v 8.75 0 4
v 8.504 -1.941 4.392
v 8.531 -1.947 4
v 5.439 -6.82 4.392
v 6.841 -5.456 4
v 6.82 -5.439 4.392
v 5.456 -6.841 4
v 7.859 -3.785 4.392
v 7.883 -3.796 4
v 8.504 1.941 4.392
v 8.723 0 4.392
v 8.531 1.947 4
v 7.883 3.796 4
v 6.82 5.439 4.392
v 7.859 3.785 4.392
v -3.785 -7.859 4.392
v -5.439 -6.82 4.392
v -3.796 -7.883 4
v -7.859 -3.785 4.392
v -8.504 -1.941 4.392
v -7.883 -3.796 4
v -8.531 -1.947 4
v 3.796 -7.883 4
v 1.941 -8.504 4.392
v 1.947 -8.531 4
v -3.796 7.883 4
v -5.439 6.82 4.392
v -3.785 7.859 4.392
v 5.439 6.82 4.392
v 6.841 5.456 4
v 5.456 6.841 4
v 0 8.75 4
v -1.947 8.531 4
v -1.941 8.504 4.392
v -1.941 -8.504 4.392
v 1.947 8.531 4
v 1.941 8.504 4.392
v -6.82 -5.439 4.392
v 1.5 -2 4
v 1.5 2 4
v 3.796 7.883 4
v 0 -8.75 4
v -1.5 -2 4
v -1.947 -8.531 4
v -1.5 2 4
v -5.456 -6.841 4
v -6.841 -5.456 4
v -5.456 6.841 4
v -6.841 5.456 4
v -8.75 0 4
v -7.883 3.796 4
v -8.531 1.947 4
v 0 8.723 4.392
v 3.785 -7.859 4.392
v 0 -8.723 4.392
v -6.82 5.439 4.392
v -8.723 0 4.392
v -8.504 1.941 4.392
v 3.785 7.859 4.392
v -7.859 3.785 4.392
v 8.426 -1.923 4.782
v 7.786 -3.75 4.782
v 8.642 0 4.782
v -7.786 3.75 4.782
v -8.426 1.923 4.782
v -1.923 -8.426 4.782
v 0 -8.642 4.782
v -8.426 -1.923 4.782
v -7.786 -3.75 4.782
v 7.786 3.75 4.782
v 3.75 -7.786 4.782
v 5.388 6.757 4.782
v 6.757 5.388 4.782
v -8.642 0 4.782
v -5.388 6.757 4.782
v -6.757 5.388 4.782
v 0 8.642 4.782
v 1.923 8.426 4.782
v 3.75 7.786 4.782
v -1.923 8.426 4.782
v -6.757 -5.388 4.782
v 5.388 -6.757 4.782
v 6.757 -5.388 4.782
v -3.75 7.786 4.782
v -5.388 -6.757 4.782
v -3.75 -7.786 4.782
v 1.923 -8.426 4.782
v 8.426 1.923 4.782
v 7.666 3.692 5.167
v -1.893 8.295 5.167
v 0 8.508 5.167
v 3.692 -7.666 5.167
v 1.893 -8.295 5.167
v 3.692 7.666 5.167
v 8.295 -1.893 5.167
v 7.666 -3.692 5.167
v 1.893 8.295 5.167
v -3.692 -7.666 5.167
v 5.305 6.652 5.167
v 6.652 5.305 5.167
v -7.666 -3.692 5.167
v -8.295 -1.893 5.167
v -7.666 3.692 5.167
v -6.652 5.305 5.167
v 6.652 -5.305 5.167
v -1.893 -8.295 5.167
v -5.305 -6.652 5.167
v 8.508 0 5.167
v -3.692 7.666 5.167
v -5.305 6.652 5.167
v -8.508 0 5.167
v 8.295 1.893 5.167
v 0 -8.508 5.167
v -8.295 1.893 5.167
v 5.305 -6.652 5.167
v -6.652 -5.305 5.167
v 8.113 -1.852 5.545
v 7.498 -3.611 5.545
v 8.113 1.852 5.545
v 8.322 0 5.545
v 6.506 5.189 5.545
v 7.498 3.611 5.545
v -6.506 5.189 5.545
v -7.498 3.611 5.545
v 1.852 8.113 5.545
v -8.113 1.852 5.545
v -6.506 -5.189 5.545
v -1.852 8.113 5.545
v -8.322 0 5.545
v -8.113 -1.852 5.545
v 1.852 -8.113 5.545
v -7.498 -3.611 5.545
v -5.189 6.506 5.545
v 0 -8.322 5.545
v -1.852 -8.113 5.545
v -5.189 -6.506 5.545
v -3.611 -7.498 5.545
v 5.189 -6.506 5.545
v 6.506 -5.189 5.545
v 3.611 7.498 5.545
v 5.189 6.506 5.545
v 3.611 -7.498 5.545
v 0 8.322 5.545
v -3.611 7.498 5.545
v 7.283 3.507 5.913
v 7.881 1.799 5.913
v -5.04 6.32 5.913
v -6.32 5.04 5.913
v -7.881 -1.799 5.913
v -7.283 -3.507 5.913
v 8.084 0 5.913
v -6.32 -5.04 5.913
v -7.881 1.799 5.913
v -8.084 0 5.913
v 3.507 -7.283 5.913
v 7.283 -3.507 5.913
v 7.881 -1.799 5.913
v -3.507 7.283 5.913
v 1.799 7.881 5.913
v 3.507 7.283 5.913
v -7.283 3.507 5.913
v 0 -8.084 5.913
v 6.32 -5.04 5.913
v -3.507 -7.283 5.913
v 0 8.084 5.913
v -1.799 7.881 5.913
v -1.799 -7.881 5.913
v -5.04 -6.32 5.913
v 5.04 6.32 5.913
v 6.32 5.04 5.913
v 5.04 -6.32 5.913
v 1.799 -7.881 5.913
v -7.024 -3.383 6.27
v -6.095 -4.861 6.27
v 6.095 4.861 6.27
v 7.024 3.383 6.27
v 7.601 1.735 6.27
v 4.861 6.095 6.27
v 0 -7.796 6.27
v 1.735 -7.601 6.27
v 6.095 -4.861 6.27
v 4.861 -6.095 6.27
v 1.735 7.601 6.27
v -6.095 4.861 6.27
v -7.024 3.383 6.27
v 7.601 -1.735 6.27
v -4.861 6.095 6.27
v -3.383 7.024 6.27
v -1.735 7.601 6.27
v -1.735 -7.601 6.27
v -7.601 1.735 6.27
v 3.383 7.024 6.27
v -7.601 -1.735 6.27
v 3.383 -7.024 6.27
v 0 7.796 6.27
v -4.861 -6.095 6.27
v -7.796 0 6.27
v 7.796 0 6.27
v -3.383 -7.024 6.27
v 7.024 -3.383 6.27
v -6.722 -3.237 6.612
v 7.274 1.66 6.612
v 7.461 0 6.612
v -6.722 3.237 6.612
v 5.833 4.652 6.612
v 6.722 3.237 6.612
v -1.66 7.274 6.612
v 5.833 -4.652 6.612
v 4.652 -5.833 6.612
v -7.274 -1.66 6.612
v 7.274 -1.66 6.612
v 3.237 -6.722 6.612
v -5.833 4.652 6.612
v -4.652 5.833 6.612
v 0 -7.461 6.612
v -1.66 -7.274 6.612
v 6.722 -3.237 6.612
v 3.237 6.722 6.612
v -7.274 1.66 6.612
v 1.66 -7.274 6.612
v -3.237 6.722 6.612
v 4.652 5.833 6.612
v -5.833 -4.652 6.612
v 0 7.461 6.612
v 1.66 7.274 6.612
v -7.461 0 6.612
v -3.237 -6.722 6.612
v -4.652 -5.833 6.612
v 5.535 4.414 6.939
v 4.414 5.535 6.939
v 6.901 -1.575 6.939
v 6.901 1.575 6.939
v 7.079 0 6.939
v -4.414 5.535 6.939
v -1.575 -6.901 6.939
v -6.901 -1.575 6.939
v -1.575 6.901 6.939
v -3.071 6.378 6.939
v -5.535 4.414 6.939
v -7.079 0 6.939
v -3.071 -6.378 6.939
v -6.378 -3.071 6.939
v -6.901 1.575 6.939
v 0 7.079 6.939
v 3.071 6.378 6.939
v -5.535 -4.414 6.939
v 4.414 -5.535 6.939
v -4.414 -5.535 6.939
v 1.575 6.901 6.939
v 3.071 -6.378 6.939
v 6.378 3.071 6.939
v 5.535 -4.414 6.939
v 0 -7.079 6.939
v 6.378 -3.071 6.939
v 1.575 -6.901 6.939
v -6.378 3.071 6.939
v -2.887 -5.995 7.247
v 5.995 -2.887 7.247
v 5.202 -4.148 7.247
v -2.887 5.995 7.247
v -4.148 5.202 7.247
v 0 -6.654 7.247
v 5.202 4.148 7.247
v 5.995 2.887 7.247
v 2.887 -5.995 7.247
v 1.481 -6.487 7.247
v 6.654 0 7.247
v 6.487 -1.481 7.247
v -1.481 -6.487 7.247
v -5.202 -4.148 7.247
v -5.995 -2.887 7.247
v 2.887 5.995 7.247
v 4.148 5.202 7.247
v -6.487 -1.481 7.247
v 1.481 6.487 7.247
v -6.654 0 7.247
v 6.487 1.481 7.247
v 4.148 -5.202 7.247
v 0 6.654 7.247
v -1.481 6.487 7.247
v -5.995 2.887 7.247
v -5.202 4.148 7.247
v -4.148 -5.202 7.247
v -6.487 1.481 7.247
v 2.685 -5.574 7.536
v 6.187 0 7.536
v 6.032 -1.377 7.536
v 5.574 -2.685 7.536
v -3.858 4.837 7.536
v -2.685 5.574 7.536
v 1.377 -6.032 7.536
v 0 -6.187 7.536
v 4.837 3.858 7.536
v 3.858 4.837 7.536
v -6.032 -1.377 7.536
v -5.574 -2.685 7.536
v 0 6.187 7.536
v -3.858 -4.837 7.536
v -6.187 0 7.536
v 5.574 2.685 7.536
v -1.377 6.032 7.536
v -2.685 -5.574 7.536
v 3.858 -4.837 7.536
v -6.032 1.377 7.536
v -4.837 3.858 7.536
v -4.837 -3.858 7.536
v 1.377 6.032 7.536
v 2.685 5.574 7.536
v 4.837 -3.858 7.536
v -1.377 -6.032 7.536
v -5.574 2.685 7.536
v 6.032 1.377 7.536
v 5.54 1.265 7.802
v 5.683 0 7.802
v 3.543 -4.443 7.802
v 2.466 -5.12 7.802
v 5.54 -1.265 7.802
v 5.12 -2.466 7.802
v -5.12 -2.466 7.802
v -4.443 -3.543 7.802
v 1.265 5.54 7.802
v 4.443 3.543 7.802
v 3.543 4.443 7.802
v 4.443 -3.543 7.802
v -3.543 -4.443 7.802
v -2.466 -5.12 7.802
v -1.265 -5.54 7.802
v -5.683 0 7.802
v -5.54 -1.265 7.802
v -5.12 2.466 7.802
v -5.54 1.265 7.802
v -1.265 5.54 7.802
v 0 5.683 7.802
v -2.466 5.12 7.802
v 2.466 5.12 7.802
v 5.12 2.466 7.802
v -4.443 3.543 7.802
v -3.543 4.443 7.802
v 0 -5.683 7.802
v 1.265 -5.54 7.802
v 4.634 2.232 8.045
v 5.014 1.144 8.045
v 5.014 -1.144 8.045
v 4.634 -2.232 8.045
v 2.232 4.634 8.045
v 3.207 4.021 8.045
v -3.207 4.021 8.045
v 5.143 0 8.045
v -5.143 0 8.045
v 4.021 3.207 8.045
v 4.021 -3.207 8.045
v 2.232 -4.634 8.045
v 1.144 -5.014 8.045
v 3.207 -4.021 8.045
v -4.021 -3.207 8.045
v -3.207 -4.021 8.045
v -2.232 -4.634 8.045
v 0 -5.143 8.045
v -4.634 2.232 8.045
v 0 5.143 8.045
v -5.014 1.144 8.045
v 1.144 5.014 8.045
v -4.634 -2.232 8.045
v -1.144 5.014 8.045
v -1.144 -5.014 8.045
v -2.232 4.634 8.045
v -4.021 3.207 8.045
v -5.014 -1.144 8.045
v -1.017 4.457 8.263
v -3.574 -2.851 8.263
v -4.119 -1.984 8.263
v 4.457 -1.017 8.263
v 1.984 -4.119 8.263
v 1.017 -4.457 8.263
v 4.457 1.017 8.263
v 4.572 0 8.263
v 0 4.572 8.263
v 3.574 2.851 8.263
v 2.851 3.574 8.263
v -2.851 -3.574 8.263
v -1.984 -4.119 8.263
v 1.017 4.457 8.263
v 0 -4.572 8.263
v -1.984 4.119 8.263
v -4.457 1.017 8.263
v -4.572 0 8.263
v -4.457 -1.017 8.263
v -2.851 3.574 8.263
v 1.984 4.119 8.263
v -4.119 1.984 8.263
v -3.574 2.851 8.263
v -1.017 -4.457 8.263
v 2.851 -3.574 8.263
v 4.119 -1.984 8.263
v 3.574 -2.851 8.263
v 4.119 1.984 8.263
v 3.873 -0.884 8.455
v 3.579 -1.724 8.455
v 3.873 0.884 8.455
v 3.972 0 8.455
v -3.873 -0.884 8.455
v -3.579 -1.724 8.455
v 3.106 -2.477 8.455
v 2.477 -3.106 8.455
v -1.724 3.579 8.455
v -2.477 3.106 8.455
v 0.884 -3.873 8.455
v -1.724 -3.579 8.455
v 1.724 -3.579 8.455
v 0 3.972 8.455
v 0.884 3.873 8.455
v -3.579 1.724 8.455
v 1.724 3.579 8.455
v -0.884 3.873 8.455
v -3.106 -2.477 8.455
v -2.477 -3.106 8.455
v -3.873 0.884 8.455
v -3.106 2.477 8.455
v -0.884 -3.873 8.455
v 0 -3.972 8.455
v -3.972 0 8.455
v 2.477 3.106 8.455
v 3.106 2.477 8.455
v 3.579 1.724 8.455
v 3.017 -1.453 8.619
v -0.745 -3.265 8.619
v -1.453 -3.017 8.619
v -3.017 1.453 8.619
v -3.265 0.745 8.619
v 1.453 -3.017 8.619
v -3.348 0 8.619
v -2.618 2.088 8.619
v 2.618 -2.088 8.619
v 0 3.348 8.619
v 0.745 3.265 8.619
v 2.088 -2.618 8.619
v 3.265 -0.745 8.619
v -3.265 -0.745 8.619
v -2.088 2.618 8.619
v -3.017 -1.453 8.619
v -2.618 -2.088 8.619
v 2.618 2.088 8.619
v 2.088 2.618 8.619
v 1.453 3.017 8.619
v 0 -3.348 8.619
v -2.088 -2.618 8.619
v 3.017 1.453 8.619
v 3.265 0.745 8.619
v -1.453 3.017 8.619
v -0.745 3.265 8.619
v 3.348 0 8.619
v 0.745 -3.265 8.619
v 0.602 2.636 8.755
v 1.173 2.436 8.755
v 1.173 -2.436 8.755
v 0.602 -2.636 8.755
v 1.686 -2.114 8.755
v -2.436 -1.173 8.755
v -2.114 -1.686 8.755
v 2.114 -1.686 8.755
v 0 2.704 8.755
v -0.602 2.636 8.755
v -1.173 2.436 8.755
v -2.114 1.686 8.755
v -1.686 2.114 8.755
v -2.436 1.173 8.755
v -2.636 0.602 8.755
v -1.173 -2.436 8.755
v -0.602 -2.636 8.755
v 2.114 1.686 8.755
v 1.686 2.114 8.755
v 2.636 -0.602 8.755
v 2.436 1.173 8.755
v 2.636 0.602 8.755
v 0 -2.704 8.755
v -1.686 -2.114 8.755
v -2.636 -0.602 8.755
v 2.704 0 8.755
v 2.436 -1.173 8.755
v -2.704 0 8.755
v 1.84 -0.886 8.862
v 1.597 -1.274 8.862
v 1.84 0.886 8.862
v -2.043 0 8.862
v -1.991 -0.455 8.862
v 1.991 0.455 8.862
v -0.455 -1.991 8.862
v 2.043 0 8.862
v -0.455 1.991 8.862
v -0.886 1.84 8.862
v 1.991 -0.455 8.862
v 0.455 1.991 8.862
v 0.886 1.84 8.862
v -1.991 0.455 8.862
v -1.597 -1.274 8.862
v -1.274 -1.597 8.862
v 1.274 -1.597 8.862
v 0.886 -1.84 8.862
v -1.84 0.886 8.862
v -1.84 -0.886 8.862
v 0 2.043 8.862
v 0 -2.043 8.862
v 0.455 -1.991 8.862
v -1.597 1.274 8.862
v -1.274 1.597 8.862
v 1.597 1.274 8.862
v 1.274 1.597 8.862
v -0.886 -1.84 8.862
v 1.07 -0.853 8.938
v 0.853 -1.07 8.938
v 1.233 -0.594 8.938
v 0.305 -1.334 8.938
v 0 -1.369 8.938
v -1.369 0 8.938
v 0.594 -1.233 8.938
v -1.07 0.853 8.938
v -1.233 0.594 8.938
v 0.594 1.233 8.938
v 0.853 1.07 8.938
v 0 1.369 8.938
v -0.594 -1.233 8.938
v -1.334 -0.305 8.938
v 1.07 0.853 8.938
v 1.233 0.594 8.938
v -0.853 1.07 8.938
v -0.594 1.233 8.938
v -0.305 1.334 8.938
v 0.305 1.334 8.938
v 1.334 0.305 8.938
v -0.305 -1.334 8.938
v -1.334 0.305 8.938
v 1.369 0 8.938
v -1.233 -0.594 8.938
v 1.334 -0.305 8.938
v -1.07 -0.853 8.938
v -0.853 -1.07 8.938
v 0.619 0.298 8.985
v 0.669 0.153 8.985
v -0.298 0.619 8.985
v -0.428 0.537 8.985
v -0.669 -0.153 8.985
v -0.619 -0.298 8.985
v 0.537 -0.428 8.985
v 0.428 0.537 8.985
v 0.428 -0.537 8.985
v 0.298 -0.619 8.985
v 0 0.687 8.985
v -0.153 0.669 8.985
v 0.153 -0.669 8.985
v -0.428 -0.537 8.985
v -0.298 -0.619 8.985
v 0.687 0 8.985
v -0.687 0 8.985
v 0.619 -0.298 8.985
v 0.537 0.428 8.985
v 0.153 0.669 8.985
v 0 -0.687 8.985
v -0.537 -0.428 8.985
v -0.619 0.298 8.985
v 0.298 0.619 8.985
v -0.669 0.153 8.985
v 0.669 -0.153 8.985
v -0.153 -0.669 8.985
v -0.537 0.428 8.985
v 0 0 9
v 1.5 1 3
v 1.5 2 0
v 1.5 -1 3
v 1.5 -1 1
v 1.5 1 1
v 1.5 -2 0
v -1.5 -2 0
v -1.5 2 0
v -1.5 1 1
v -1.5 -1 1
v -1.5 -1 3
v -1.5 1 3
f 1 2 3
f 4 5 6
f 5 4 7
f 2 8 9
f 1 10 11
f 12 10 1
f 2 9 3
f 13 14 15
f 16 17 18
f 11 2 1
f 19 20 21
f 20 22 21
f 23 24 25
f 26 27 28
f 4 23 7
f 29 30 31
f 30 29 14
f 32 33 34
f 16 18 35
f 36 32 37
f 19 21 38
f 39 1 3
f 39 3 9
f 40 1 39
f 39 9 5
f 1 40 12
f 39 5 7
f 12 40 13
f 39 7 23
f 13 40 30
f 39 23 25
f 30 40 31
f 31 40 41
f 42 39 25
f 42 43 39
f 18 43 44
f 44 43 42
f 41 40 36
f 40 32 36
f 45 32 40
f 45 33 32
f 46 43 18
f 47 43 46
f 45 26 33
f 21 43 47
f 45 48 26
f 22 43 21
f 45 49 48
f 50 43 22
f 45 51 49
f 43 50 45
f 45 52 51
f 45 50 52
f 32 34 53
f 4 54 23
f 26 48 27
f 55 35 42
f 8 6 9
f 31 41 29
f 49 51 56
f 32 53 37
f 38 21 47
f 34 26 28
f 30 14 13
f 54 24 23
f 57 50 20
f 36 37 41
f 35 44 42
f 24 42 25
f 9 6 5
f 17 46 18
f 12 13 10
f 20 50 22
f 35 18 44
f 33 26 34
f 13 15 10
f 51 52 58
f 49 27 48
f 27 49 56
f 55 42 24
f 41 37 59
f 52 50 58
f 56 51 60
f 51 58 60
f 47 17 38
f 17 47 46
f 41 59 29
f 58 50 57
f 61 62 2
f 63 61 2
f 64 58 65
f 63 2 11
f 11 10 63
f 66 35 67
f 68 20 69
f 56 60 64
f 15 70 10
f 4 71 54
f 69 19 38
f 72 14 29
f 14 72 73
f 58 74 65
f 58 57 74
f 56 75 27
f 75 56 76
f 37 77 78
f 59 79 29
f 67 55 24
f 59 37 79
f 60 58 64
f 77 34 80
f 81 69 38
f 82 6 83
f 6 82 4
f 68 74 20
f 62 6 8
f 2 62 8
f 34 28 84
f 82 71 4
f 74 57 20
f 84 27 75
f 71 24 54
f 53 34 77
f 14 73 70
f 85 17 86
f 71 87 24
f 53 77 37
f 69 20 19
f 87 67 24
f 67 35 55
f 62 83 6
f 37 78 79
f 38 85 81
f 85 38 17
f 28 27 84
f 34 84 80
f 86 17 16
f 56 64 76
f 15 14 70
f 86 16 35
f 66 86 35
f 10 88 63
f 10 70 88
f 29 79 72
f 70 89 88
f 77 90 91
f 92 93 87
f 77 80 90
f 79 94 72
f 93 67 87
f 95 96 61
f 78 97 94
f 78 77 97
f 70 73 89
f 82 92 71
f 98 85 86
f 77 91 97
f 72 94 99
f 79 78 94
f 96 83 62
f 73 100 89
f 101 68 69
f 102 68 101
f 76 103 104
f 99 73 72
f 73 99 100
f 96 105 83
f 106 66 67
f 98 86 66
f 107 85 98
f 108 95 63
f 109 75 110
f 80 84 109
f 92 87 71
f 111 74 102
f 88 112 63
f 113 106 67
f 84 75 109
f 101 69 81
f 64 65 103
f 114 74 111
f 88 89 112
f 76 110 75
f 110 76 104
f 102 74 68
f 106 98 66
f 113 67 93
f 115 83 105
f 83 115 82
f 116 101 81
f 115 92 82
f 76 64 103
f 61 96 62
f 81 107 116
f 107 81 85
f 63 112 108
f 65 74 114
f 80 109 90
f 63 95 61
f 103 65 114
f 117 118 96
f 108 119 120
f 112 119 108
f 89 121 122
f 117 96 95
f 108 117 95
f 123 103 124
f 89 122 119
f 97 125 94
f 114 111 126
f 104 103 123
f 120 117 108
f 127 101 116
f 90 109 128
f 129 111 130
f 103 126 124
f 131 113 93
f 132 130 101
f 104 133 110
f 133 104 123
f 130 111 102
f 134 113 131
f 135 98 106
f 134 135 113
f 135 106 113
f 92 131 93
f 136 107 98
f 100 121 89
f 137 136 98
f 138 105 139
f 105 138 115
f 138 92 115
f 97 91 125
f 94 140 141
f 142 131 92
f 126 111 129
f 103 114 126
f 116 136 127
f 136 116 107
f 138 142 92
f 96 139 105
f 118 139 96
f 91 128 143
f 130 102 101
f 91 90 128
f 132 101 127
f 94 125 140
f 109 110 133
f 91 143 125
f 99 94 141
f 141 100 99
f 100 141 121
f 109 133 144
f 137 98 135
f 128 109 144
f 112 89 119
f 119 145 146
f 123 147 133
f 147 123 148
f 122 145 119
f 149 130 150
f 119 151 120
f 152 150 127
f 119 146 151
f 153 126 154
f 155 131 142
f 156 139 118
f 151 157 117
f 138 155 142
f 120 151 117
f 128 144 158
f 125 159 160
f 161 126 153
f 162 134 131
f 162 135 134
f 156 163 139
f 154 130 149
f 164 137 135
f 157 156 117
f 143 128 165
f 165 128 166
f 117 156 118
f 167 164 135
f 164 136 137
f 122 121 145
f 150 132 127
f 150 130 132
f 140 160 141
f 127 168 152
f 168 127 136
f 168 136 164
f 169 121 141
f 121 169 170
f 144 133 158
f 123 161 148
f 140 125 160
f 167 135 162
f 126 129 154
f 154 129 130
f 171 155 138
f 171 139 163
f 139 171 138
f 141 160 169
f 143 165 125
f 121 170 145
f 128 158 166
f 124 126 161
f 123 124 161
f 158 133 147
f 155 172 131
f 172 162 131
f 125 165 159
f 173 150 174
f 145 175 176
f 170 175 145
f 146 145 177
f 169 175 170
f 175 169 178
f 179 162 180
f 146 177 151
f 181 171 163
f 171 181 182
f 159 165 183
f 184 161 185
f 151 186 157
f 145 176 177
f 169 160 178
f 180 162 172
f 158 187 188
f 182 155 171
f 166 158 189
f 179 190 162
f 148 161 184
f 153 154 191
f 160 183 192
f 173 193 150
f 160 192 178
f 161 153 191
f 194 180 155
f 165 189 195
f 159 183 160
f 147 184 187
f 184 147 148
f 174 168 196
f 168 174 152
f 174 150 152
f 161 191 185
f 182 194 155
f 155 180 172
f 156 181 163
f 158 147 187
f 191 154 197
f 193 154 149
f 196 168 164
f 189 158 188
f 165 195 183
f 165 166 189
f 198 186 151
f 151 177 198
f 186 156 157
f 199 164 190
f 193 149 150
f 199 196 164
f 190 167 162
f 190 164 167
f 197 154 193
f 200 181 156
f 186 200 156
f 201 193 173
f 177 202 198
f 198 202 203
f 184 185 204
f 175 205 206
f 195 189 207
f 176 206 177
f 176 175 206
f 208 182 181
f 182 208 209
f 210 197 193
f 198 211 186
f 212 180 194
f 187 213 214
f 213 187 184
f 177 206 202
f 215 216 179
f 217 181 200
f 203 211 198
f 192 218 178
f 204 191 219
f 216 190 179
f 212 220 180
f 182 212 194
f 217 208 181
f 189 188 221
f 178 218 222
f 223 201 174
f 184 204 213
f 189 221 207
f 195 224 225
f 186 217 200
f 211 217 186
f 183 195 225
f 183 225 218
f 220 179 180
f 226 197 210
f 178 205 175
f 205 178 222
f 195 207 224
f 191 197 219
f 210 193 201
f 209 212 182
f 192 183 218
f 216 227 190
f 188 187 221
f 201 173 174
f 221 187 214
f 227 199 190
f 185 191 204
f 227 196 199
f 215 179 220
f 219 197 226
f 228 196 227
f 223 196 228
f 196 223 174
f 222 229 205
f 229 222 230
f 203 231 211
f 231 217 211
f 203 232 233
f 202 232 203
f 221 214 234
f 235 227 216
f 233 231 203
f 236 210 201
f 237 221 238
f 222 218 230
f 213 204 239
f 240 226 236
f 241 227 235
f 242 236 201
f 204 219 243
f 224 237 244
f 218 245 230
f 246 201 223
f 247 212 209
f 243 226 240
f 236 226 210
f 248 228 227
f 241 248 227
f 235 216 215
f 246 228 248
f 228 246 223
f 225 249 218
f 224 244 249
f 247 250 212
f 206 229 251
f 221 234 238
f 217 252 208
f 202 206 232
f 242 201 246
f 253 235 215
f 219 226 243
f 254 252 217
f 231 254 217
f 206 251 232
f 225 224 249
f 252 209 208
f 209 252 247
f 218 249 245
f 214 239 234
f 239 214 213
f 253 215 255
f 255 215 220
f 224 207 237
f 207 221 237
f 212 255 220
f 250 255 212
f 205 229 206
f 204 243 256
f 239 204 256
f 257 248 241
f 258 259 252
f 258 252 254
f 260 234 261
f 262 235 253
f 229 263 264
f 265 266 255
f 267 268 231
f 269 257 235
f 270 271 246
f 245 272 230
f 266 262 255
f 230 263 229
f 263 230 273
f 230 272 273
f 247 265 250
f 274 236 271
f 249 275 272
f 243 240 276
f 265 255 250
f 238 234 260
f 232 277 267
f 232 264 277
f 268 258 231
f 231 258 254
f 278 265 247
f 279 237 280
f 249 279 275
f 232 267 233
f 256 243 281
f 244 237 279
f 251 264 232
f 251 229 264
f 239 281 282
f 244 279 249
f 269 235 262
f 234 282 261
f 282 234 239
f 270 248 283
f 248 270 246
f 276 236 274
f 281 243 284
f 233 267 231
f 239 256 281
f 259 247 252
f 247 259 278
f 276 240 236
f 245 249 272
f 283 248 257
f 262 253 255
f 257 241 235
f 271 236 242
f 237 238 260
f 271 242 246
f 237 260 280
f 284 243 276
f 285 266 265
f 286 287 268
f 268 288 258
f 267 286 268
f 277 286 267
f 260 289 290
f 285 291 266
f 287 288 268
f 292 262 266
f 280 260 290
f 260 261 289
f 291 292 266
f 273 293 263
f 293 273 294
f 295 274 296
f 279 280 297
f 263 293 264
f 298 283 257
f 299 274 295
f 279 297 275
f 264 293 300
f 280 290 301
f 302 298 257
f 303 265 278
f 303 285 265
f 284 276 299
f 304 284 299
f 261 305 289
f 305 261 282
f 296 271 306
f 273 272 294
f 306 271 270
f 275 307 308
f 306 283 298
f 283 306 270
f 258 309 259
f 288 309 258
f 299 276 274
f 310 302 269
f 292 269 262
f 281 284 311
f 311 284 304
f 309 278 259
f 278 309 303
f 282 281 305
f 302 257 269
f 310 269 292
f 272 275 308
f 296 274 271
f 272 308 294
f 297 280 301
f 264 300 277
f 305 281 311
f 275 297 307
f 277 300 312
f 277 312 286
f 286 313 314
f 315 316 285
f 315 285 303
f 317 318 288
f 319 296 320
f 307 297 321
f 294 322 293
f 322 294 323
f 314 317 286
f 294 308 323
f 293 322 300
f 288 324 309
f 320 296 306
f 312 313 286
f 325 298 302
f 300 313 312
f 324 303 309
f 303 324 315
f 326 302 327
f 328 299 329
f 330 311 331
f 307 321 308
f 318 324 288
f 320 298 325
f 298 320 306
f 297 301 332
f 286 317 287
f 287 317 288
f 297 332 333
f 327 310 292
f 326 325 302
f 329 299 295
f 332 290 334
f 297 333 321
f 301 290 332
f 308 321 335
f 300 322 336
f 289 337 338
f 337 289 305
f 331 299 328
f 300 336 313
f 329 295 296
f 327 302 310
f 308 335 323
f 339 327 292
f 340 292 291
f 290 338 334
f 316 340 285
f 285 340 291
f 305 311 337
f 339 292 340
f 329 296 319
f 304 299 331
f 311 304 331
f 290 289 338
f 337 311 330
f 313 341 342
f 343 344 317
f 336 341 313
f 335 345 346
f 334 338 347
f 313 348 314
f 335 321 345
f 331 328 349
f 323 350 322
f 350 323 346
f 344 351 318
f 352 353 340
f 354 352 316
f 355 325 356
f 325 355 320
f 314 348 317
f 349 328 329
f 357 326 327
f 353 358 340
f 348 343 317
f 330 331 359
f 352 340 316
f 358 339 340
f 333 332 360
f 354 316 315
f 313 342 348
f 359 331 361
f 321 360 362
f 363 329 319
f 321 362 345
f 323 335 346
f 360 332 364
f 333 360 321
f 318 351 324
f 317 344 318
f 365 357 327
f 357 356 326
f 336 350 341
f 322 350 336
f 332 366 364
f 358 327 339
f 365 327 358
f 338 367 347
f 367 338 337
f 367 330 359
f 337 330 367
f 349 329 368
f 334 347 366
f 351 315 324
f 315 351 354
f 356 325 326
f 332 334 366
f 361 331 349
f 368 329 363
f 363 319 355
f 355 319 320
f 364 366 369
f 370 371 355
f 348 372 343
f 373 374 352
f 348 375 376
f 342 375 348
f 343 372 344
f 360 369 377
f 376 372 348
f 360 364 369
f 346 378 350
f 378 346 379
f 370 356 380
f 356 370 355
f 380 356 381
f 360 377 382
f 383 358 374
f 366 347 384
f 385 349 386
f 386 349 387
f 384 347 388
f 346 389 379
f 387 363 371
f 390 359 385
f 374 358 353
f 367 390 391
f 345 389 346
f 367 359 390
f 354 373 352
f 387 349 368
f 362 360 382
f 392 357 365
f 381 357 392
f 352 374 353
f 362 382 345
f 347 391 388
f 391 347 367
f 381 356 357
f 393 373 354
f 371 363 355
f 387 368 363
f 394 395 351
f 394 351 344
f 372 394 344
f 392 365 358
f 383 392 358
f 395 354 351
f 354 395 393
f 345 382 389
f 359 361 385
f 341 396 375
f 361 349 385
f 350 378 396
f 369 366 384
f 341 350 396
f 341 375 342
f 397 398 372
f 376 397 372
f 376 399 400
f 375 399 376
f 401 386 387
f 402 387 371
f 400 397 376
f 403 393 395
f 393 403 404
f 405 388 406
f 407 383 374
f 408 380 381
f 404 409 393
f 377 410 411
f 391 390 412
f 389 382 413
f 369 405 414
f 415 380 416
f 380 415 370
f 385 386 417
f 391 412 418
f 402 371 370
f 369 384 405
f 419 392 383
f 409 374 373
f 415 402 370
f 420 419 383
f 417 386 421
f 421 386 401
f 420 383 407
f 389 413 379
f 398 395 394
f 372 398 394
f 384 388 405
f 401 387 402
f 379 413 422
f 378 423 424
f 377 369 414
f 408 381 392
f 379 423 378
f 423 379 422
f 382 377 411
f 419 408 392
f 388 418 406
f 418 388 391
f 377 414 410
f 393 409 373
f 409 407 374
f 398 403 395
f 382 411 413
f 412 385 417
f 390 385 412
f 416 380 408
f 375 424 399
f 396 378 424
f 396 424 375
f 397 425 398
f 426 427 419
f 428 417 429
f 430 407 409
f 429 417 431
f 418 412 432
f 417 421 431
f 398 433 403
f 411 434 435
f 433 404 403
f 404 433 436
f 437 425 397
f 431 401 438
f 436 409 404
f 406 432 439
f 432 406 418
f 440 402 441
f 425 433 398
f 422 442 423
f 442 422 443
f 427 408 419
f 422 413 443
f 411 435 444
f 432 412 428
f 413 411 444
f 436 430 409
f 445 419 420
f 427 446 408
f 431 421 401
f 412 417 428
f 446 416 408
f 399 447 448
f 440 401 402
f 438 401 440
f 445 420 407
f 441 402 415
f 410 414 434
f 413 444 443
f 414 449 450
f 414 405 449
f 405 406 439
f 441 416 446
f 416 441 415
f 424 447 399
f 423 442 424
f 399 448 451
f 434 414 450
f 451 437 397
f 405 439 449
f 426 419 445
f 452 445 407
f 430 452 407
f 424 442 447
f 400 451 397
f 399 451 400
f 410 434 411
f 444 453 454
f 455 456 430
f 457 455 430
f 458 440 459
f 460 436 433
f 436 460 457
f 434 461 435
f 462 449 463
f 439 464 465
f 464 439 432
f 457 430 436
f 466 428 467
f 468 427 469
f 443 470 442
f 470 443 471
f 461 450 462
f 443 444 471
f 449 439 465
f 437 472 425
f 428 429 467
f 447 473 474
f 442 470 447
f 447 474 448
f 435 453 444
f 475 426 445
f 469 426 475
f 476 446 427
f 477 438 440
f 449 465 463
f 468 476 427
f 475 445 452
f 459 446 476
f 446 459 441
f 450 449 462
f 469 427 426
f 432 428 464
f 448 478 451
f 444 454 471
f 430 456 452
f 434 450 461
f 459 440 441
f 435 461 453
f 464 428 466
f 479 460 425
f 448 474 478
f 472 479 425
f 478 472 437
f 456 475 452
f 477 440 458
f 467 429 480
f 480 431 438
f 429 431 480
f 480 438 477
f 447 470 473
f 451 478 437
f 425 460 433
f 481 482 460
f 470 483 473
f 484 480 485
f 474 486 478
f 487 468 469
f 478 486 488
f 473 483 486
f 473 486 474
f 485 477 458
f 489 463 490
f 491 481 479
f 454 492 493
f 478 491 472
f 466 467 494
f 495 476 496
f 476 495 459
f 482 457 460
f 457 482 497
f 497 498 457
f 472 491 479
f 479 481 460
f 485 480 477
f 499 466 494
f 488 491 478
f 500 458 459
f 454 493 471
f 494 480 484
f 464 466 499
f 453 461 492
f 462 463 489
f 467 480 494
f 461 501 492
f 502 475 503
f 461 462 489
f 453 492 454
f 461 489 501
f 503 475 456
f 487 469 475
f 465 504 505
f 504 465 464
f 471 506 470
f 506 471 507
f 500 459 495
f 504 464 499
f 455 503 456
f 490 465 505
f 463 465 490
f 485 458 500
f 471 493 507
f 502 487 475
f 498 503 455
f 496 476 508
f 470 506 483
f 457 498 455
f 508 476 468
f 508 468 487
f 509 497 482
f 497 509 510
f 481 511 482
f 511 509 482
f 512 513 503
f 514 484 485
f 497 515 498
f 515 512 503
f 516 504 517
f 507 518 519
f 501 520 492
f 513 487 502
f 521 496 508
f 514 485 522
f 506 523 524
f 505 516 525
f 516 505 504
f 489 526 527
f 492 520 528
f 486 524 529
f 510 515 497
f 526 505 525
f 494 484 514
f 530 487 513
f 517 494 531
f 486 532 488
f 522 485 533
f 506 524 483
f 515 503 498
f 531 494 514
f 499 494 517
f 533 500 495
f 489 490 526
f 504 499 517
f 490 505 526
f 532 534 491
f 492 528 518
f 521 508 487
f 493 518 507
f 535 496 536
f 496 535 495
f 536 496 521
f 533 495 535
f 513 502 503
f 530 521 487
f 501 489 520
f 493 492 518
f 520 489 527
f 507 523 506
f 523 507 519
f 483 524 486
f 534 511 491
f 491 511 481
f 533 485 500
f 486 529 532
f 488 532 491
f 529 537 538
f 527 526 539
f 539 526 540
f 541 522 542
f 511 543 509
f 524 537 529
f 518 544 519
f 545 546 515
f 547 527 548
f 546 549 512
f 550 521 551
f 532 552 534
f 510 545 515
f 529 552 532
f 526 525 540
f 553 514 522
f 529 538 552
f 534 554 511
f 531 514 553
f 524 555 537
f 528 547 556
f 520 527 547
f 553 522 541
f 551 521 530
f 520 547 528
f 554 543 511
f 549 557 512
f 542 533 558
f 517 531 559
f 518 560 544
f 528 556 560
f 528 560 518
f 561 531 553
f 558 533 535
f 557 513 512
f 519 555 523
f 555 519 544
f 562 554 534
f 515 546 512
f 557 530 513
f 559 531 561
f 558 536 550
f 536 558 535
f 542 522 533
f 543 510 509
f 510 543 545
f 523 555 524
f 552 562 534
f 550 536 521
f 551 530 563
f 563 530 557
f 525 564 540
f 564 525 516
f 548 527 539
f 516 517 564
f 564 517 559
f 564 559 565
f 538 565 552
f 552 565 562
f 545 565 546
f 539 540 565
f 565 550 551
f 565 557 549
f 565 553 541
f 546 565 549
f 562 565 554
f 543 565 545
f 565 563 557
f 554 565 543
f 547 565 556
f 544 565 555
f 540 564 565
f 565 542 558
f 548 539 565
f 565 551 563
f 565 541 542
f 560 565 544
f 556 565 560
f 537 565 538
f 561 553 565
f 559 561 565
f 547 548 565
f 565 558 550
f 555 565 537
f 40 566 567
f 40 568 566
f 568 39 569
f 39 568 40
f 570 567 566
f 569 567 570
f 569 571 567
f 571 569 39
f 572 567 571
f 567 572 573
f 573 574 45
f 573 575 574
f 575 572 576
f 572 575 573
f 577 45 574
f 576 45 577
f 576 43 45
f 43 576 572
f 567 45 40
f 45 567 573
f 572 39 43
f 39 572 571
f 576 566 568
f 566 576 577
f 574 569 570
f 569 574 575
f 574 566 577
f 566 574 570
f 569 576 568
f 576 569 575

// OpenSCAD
// file: ellipse_extrude.scad
/**
* ellipse_extrude.scad
*
* @copyright Justin Lin, 2017
* @license https://opensource.org/licenses/lgpl-3.0.html
*
* @see https://openhome.cc/eGossip/OpenSCAD/lib-ellipse_extrude.html
*
**/

module ellipse_extrude(semi_minor_axis, height, center = false, convexity = 10, twist = 0, slices = 20) {
    h = is_undef(height) ? semi_minor_axis : (
        // `semi_minor_axis` is always equal to or greater than `height`.
        height > semi_minor_axis ? semi_minor_axis : height
    );
    angle = asin(h / semi_minor_axis) / slices; 

    function f_extrude(i = 1) = 
        i <= slices ? 
            concat(
                [
                    [
                        cos(angle * i) / cos(angle * (i - 1)), 
                        semi_minor_axis * sin(angle * i)
                    ]
                ],
                f_extrude(i + 1)
            ) : []; 

    fzs = f_extrude(); 
    len_fzs = len(fzs);

    function accm_fs(pre_f = 1, i = 0) =
        i < len_fzs ? 
            concat(
                [pre_f * fzs[i][0]],
                accm_fs(pre_f * fzs[i][0], i + 1)
            ) : [];
    
    child_fs = concat([1], accm_fs());
    pre_zs = concat(
        [0],
        [
            for(i = [0:len_fzs - 1])
                fzs[i][1]
        ]
    );

    module extrude() {
        for(i = [0:len_fzs - 1]) {
            f = fzs[i][0];
            z = fzs[i][1];

            translate([0, 0, pre_zs[i]]) 
                rotate(-twist / slices * i) 
                    linear_extrude(
                        z - pre_zs[i], 
                        convexity = convexity,
                        twist = twist / slices, 
                        slices = 1,
                        scale = f 
                    ) scale(child_fs[i]) children();
        }
    }
    
    center_offset = [0, 0, center == true ? -h / 2 : 0];
    translate(center_offset) 
        extrude() 
            children();

    // hook for testing
    test_ellipse_extrude_fzc(child_fs, pre_zs, center_offset);
}

// override for testing
module test_ellipse_extrude_fzc(child_fs, pre_zs, center_offset) {

}
// main file
use <ellipse_extrude.scad>

diameter_button = 17.5;
height_button = 5;

// Here we create the part that is attached to the suit
height_feet = 4;
width_feet = 4;
thickness_feet = 3;
wall_thickness = 2;

translate([0, 0, height_feet])
    ellipse_extrude(height_button) 
        circle(d=diameter_button);

translate([0, 0, height_feet/2])
    difference(){
        cube([thickness_feet, width_feet, height_feet], center = true);
        cube([thickness_feet, width_feet-wall_thickness, height_feet-wall_thickness], center = true);
    };
